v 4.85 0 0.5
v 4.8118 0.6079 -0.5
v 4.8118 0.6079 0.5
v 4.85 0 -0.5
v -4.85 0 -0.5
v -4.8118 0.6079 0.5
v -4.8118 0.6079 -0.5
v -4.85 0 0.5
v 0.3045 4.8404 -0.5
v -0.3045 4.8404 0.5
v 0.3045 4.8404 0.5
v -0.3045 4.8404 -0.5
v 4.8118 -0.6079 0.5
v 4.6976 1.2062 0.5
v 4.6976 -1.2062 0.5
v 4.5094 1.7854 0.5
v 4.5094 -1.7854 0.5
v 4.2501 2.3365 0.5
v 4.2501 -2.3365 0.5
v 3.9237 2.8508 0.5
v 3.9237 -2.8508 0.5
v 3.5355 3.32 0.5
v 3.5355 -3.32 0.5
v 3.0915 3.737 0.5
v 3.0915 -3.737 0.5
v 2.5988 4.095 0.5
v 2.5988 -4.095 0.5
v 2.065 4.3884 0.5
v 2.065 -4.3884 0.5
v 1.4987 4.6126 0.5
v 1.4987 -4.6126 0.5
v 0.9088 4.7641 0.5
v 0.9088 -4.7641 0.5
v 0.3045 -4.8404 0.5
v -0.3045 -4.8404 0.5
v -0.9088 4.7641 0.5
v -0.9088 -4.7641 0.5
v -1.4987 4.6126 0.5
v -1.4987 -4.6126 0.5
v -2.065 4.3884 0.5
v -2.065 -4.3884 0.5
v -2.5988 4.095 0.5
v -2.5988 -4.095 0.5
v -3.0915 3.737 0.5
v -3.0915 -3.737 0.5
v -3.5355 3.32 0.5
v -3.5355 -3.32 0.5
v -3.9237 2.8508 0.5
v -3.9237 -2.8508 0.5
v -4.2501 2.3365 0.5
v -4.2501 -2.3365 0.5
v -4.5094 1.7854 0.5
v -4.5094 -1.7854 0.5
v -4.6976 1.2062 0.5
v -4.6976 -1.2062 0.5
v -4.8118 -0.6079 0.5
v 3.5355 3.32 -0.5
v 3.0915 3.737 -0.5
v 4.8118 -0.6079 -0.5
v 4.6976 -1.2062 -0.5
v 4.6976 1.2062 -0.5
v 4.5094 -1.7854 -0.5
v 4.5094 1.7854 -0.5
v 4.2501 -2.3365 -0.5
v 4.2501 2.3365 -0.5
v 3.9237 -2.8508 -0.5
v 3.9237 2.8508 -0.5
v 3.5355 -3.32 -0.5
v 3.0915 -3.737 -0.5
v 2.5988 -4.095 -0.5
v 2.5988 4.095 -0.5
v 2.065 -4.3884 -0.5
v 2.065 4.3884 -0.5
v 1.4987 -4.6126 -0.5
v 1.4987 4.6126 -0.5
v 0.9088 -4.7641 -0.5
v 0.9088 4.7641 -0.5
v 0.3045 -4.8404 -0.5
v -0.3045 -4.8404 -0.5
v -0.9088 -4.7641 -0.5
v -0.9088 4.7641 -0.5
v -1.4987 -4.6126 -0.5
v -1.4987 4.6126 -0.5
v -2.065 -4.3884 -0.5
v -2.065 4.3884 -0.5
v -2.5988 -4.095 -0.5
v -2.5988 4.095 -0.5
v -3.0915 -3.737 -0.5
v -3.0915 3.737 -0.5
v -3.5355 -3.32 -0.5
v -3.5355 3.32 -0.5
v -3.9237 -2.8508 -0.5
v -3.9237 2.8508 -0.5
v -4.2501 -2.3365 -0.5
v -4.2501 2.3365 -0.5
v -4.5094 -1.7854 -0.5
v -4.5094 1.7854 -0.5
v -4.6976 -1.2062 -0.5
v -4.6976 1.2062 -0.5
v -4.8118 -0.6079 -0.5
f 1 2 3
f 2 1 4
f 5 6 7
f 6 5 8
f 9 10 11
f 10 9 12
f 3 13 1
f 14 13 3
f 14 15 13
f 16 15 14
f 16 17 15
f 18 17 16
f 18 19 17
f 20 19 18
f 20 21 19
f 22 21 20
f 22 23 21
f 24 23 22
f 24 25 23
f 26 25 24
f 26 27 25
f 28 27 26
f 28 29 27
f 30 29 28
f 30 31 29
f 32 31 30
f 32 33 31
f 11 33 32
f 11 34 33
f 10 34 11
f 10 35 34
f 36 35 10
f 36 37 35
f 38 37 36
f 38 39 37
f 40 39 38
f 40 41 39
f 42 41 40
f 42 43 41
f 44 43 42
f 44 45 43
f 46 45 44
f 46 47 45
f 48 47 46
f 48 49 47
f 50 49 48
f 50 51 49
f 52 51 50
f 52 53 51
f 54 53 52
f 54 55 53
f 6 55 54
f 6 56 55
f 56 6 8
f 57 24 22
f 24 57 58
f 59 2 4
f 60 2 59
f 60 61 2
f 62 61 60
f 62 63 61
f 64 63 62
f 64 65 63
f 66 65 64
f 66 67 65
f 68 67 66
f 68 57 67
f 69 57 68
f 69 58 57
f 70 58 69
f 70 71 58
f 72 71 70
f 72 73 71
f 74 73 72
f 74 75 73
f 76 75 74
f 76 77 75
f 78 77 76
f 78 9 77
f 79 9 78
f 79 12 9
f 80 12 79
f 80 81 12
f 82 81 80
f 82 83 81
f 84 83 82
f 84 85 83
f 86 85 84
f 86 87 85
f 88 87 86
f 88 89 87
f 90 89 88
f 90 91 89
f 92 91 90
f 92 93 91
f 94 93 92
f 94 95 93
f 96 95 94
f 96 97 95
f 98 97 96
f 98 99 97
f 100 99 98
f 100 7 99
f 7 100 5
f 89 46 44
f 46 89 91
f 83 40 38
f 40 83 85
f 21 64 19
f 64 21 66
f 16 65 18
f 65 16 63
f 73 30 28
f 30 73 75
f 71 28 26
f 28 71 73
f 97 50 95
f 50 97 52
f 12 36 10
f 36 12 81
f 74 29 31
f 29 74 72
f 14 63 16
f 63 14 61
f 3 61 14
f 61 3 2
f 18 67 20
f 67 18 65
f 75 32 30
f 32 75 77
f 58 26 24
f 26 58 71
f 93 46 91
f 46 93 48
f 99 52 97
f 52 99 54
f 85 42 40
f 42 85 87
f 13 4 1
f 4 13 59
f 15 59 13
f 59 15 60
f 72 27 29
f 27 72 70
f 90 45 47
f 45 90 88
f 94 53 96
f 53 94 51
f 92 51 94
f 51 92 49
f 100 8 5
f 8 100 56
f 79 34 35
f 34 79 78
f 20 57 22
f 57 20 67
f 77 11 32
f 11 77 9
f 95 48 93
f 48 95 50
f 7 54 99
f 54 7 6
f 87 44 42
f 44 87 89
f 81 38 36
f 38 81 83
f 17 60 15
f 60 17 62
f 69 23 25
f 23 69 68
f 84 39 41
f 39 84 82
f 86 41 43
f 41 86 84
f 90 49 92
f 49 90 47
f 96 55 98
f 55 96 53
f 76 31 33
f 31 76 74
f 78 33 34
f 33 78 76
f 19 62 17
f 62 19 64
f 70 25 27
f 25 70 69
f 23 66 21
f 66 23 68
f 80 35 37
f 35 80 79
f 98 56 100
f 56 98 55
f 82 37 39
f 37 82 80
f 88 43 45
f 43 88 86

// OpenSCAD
$fn = 50;


difference() {
	union() {
		translate(v = [0, 0, -0.5000000000]) {
			cylinder(h = 1, r = 4.8500000000);
		}
	}
	union() {
		translate(v = [0, 0, -100.0000000000]) {
			cylinder(h = 200, r = 0);
		}
	}
}
